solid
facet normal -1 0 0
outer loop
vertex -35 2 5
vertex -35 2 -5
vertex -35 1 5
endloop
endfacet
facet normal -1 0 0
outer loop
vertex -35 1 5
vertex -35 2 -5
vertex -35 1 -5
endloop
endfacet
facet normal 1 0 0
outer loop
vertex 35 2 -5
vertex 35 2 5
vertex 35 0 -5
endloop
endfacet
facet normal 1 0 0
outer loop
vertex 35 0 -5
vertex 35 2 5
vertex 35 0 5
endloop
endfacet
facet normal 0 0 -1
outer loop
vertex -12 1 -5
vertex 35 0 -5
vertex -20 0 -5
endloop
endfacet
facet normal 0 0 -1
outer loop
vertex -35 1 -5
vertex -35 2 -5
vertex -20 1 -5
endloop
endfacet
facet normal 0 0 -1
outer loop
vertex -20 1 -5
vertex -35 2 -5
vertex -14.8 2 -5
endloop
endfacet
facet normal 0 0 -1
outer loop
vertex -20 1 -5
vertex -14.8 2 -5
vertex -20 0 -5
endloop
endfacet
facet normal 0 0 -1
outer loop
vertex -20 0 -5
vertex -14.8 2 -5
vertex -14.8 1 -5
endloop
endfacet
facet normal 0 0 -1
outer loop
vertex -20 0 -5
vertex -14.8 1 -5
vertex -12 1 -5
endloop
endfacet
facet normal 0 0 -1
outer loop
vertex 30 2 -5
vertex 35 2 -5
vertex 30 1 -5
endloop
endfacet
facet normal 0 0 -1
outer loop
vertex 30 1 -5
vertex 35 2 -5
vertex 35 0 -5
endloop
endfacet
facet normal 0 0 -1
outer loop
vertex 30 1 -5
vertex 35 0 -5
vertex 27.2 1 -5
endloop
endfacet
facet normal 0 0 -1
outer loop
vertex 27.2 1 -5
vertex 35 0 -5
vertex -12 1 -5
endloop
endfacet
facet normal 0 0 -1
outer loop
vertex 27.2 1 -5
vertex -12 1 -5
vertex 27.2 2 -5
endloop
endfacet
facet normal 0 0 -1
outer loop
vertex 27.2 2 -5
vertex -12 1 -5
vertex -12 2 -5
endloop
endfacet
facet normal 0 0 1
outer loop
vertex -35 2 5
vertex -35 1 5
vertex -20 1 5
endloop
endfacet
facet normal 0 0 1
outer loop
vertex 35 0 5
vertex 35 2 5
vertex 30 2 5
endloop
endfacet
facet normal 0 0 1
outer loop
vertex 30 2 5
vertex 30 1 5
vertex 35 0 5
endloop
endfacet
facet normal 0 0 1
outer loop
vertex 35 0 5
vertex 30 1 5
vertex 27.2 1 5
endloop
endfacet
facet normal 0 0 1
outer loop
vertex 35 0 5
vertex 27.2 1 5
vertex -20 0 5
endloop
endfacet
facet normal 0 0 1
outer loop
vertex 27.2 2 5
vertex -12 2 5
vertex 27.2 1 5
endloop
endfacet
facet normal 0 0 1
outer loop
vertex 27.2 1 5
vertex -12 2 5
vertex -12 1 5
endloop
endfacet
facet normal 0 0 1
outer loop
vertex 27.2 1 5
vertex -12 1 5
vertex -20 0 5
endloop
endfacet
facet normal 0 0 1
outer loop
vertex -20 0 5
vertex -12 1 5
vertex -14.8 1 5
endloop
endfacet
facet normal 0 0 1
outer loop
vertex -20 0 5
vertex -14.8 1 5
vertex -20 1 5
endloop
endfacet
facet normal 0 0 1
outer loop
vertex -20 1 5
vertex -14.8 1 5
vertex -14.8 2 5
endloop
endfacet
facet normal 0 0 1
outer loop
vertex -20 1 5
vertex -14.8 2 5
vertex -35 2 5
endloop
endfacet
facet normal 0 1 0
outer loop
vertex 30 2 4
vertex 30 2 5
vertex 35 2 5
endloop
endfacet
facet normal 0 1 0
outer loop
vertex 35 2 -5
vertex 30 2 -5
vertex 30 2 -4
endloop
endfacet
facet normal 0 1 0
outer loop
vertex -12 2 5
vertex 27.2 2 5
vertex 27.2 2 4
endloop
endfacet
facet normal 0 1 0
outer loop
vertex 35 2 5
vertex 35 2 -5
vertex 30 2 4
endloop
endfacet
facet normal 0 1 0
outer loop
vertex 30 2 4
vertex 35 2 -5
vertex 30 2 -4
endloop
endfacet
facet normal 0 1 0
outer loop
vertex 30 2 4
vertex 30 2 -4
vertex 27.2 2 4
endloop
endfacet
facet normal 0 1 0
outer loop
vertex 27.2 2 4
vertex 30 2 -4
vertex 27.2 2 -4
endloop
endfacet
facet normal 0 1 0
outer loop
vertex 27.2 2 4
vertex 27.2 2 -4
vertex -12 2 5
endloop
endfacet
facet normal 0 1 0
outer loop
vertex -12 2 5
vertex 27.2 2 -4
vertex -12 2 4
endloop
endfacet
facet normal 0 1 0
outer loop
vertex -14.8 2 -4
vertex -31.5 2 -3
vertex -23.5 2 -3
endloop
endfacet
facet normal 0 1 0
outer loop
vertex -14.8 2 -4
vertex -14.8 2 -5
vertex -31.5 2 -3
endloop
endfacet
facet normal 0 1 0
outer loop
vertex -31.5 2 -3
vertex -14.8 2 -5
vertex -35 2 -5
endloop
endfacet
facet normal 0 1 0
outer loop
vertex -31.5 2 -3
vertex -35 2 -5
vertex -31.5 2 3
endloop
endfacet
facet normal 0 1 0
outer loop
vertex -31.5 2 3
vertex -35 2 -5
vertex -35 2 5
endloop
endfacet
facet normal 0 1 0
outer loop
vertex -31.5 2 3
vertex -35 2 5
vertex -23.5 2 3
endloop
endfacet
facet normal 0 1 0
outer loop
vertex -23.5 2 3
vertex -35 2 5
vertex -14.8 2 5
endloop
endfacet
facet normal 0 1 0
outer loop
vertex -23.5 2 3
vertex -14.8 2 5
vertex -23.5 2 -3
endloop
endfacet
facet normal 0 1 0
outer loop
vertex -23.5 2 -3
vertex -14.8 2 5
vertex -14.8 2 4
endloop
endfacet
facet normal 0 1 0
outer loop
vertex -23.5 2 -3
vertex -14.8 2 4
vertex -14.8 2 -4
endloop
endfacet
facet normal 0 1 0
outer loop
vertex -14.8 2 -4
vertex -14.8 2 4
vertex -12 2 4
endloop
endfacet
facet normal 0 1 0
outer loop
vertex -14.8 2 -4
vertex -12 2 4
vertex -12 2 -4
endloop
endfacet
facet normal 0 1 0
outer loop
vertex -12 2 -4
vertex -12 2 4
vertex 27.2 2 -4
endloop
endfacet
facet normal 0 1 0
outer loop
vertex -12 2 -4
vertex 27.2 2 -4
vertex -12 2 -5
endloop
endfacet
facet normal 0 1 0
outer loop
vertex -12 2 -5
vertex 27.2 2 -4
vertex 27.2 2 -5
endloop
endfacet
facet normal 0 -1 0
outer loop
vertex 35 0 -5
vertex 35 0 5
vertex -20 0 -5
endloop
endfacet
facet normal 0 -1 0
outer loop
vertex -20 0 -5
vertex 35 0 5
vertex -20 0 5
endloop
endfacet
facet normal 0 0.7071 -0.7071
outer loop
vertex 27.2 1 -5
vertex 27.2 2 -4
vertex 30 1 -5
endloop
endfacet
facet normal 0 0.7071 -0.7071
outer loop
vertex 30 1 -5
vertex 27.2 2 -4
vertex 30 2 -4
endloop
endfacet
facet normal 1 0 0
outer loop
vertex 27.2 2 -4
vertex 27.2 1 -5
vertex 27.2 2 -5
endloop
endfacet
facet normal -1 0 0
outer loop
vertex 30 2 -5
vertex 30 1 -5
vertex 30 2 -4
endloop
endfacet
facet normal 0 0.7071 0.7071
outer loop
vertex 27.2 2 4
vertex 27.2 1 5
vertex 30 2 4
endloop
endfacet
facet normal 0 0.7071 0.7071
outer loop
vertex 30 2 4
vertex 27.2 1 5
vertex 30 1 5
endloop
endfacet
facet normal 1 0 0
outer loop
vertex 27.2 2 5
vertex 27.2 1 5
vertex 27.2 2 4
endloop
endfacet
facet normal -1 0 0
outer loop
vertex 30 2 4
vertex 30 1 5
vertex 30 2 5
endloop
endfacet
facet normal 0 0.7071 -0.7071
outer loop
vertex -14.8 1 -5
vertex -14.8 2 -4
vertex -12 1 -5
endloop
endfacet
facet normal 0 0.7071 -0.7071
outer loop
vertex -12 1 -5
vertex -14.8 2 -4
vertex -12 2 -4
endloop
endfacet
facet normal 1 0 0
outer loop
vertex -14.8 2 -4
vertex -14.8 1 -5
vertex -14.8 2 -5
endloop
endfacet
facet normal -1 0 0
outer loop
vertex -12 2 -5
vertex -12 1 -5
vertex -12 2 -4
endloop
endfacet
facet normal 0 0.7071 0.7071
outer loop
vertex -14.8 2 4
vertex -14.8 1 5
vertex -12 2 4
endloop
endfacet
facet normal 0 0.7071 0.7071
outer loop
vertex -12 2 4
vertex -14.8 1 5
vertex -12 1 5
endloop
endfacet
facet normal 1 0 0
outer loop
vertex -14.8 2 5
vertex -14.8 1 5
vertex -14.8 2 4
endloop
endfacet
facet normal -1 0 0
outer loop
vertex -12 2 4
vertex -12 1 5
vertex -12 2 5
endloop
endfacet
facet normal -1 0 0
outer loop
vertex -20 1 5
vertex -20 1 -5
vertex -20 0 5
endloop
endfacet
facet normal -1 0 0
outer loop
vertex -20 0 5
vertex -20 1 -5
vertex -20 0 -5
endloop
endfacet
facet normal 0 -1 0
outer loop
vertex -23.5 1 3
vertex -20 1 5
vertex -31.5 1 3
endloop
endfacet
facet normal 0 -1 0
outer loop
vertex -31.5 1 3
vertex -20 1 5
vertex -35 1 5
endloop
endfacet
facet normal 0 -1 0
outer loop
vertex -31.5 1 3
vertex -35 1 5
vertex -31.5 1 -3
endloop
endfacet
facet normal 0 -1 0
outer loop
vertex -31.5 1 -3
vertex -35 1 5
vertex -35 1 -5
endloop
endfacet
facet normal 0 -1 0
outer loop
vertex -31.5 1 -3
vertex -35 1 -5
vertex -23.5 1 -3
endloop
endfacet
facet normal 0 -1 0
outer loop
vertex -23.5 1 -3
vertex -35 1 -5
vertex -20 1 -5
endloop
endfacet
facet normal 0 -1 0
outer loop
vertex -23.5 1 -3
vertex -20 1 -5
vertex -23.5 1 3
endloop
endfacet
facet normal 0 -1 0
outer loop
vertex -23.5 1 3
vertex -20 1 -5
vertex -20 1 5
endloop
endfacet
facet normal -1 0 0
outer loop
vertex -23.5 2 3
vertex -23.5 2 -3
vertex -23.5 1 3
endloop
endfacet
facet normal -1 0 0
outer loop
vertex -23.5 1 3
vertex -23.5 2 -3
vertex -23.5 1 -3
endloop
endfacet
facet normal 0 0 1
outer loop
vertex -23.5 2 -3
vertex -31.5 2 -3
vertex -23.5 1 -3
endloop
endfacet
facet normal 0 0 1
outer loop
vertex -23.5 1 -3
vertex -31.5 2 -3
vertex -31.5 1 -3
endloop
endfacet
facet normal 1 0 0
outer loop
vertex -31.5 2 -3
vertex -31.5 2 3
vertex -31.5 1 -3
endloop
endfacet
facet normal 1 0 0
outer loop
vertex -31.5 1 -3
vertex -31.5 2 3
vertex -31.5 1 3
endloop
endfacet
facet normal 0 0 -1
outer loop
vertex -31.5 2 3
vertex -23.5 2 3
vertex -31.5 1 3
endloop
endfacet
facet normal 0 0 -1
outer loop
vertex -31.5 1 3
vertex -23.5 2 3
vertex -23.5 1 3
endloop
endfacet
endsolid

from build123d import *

# Parameters (mm, degrees)
SKETCH1_W           = 70
SKETCH1_H           = 10
BOSS_EXTRUDE1_DEPTH = 2
CUT_EXTRUDE1_START  = -5
CUT_EXTRUDE1_DEPTH  = 2.8
CUT_EXTRUDE2_START  = -47
CUT_EXTRUDE2_DEPTH  = 2.8
SKETCH3_W           = 15
SKETCH3_H           = 10
CUT_EXTRUDE3_DEPTH  = 1
SKETCH4_W           = 8
SKETCH4_H           = 6
CUT_EXTRUDE4_DEPTH  = 36.369478368


with BuildPart() as part:
    # Sketch1 → Boss-Extrude1 (new body)
    with BuildSketch(Plane(origin=(0, 0, 0), x_dir=(1, 0, 0), z_dir=(0, 1, 0))):
        Rectangle(SKETCH1_W, SKETCH1_H)
    extrude(amount=BOSS_EXTRUDE1_DEPTH)

    # Sketch2 → Cut-Extrude1 (cut)
    with BuildSketch(Plane(origin=(35, 0, 0), x_dir=(0, 0, -1), z_dir=(1, 0, 0)).offset(CUT_EXTRUDE1_START)):
        Polygon((-5, 2), (-5, 1), (-4, 2), align=None)
        Polygon((5, 2), (5, 1), (4, 2), align=None)
    extrude(amount=-CUT_EXTRUDE1_DEPTH, mode=Mode.SUBTRACT)

    # Sketch2<2> → Cut-Extrude2 (cut)
    with BuildSketch(Plane(origin=(35, 0, 0), x_dir=(0, 0, -1), z_dir=(1, 0, 0)).offset(CUT_EXTRUDE2_START)):
        Polygon((-5, 2), (-5, 1), (-4, 2), align=None)
        Polygon((5, 2), (5, 1), (4, 2), align=None)
    extrude(amount=-CUT_EXTRUDE2_DEPTH, mode=Mode.SUBTRACT)

    # Sketch3 → Cut-Extrude3 (cut)
    with BuildSketch(Plane.XZ):
        with Locations((-27.5, 0)):
            Rectangle(SKETCH3_W, SKETCH3_H)
    extrude(amount=-CUT_EXTRUDE3_DEPTH, mode=Mode.SUBTRACT)

    # Sketch4 → Cut-Extrude4 (cut, through all)
    with BuildSketch(Plane.XZ.offset(-1)):
        with Locations((-27.5, 0)):
            Rectangle(SKETCH4_W, SKETCH4_H)
    extrude(amount=-CUT_EXTRUDE4_DEPTH, mode=Mode.SUBTRACT)


solid = part.part
